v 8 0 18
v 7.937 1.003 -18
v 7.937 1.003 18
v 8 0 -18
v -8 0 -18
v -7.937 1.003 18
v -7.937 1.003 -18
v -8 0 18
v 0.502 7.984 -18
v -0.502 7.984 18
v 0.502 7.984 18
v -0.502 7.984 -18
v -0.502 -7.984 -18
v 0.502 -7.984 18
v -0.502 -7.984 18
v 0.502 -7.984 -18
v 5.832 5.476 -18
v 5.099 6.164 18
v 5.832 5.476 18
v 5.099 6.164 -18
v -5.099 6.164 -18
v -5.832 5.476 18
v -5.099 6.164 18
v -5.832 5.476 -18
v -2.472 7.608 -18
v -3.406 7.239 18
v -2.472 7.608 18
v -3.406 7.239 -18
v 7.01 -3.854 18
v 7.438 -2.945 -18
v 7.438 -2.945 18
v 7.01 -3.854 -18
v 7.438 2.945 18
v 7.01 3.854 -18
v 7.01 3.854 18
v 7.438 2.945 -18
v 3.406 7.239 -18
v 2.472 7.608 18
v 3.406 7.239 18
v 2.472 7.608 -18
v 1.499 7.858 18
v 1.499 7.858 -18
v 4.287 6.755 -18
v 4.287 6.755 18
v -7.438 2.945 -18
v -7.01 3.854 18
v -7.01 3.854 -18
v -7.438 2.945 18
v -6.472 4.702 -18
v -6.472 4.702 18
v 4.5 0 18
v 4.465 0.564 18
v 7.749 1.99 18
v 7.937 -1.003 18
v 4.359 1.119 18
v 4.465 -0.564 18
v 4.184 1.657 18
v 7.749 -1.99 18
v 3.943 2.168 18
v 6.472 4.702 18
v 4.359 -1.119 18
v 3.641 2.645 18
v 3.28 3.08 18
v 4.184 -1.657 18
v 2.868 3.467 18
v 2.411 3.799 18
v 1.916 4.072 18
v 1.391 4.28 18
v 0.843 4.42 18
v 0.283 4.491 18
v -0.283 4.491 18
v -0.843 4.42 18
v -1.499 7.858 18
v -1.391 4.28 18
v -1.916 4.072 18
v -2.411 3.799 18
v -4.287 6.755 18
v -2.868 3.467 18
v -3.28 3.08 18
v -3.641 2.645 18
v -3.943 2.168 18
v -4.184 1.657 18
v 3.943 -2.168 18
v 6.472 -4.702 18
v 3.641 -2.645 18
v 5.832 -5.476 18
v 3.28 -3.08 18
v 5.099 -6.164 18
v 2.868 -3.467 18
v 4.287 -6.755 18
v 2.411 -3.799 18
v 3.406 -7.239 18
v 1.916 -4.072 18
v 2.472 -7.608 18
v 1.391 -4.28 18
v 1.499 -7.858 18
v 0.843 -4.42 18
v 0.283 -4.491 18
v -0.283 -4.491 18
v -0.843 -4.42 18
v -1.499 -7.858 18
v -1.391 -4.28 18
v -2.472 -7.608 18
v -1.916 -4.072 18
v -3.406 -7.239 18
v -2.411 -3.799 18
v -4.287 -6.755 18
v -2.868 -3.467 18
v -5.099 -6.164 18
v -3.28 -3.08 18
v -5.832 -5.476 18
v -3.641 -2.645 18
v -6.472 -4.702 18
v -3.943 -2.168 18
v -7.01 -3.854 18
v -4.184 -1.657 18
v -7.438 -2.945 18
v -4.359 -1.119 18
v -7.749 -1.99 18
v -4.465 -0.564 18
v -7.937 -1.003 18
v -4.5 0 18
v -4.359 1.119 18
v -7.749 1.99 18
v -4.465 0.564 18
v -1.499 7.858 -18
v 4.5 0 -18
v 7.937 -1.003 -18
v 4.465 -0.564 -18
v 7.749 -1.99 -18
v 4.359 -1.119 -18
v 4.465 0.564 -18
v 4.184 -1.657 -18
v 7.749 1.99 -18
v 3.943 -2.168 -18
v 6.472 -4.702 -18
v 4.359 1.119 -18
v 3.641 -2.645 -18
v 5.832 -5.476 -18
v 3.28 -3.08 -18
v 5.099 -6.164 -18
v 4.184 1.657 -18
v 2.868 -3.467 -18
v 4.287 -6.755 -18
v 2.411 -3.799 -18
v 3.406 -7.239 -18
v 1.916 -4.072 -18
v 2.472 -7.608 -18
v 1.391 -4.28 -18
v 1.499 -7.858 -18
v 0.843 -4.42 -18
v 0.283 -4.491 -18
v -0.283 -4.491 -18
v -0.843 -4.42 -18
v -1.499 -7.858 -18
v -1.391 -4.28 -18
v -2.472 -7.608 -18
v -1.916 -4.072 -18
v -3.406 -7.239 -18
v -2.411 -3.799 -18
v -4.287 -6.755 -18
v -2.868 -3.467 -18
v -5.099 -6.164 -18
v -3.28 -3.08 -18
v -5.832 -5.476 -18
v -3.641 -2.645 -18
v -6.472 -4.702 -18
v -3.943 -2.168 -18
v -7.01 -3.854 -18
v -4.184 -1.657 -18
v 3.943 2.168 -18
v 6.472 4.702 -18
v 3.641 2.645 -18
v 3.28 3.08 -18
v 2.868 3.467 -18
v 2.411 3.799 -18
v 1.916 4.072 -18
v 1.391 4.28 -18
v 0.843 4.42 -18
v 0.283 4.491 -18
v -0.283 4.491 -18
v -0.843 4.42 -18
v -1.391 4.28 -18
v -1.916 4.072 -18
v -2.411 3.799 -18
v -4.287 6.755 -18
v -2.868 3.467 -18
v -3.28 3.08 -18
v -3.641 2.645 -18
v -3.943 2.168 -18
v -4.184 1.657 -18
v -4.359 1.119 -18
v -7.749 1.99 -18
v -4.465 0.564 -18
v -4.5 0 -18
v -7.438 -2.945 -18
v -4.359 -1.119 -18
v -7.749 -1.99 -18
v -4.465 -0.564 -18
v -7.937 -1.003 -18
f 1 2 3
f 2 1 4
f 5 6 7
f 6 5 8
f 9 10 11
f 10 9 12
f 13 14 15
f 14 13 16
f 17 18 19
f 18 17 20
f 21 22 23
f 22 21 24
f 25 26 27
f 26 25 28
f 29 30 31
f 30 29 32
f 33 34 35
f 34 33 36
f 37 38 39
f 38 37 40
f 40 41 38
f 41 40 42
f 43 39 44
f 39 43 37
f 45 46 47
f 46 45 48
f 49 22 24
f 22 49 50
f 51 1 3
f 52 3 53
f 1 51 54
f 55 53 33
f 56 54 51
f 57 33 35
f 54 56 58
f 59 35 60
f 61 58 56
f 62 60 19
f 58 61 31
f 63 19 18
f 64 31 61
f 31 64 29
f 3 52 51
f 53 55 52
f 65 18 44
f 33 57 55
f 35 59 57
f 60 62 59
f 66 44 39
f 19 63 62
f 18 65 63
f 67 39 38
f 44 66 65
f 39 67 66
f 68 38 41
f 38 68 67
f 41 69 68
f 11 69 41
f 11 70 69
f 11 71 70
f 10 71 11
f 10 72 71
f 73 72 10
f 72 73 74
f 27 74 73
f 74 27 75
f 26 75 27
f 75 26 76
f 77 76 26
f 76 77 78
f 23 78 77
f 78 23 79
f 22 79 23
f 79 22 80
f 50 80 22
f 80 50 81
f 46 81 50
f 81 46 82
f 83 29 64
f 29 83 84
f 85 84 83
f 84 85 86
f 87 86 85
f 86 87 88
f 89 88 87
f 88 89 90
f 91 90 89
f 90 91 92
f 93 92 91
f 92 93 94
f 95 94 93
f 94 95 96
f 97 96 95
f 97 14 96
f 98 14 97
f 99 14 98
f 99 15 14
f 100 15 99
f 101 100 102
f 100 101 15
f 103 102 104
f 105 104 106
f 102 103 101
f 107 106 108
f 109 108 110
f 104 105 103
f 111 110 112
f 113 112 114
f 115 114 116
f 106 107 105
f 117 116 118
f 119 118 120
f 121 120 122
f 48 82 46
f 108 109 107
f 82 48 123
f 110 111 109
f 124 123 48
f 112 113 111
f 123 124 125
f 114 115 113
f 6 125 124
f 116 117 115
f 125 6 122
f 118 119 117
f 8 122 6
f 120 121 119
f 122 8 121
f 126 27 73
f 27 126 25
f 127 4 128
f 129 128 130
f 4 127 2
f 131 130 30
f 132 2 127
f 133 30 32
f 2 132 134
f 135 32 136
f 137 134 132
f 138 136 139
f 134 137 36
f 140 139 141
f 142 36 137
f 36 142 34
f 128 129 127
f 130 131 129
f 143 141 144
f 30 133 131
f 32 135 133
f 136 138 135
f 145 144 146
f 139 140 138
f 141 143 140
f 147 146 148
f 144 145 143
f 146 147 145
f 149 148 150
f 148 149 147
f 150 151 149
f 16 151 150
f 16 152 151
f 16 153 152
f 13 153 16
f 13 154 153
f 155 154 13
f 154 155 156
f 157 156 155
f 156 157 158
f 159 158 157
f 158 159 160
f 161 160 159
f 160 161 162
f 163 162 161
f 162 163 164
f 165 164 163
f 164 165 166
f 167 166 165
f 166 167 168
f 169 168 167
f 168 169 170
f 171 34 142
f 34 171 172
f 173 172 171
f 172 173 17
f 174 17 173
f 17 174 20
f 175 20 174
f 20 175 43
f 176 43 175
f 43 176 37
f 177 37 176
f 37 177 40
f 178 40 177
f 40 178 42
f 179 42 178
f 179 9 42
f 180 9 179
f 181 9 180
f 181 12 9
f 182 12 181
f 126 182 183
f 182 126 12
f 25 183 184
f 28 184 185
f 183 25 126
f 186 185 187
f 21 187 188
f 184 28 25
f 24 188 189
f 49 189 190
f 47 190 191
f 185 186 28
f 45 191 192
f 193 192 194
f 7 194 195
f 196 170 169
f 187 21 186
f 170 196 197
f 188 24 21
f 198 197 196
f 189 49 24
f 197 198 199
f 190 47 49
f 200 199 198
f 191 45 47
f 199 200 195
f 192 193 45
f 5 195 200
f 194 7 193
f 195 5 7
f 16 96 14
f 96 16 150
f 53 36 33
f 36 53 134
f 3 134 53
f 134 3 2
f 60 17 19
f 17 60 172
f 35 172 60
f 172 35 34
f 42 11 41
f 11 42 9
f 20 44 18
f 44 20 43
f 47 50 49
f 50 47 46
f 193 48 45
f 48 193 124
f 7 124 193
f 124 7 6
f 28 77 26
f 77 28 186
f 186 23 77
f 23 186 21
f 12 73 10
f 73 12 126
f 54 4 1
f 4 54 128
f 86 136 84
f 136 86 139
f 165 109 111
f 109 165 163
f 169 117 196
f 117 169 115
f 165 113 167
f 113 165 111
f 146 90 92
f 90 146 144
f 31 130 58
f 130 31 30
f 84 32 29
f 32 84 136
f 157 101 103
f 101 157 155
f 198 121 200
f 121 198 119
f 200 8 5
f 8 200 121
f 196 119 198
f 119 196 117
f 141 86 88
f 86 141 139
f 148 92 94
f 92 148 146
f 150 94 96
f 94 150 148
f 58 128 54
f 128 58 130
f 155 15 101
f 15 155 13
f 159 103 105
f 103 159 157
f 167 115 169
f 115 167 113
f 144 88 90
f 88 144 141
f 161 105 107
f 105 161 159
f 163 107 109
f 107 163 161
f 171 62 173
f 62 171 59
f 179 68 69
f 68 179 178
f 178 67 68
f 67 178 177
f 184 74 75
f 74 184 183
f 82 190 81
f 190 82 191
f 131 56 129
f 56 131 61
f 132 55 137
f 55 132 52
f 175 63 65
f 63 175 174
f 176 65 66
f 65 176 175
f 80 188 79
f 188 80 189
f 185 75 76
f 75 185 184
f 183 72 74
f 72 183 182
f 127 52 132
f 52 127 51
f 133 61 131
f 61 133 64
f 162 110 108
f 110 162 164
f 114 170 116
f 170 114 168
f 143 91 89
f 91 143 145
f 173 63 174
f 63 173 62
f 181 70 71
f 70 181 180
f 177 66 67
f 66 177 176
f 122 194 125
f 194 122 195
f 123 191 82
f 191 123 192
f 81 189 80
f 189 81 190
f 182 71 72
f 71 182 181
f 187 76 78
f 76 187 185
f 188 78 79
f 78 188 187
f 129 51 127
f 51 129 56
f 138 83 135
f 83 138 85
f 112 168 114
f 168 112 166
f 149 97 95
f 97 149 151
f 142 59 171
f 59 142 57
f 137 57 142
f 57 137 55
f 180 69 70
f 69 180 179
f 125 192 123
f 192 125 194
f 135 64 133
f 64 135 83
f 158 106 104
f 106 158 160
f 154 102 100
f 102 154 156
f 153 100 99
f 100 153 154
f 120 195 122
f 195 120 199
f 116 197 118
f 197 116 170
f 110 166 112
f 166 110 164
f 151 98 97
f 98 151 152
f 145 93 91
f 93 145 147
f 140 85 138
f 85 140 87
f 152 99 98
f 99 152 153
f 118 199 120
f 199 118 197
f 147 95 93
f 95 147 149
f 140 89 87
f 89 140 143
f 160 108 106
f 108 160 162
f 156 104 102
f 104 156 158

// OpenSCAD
$fn = 50;


difference() {
	union() {
		translate(v = [0, 0, -18.0000000000]) {
			cylinder(h = 36, r = 8.0000000000);
		}
	}
	union() {
		translate(v = [0, 0, -100.0000000000]) {
			cylinder(h = 200, r = 4.5000000000);
		}
	}
}
